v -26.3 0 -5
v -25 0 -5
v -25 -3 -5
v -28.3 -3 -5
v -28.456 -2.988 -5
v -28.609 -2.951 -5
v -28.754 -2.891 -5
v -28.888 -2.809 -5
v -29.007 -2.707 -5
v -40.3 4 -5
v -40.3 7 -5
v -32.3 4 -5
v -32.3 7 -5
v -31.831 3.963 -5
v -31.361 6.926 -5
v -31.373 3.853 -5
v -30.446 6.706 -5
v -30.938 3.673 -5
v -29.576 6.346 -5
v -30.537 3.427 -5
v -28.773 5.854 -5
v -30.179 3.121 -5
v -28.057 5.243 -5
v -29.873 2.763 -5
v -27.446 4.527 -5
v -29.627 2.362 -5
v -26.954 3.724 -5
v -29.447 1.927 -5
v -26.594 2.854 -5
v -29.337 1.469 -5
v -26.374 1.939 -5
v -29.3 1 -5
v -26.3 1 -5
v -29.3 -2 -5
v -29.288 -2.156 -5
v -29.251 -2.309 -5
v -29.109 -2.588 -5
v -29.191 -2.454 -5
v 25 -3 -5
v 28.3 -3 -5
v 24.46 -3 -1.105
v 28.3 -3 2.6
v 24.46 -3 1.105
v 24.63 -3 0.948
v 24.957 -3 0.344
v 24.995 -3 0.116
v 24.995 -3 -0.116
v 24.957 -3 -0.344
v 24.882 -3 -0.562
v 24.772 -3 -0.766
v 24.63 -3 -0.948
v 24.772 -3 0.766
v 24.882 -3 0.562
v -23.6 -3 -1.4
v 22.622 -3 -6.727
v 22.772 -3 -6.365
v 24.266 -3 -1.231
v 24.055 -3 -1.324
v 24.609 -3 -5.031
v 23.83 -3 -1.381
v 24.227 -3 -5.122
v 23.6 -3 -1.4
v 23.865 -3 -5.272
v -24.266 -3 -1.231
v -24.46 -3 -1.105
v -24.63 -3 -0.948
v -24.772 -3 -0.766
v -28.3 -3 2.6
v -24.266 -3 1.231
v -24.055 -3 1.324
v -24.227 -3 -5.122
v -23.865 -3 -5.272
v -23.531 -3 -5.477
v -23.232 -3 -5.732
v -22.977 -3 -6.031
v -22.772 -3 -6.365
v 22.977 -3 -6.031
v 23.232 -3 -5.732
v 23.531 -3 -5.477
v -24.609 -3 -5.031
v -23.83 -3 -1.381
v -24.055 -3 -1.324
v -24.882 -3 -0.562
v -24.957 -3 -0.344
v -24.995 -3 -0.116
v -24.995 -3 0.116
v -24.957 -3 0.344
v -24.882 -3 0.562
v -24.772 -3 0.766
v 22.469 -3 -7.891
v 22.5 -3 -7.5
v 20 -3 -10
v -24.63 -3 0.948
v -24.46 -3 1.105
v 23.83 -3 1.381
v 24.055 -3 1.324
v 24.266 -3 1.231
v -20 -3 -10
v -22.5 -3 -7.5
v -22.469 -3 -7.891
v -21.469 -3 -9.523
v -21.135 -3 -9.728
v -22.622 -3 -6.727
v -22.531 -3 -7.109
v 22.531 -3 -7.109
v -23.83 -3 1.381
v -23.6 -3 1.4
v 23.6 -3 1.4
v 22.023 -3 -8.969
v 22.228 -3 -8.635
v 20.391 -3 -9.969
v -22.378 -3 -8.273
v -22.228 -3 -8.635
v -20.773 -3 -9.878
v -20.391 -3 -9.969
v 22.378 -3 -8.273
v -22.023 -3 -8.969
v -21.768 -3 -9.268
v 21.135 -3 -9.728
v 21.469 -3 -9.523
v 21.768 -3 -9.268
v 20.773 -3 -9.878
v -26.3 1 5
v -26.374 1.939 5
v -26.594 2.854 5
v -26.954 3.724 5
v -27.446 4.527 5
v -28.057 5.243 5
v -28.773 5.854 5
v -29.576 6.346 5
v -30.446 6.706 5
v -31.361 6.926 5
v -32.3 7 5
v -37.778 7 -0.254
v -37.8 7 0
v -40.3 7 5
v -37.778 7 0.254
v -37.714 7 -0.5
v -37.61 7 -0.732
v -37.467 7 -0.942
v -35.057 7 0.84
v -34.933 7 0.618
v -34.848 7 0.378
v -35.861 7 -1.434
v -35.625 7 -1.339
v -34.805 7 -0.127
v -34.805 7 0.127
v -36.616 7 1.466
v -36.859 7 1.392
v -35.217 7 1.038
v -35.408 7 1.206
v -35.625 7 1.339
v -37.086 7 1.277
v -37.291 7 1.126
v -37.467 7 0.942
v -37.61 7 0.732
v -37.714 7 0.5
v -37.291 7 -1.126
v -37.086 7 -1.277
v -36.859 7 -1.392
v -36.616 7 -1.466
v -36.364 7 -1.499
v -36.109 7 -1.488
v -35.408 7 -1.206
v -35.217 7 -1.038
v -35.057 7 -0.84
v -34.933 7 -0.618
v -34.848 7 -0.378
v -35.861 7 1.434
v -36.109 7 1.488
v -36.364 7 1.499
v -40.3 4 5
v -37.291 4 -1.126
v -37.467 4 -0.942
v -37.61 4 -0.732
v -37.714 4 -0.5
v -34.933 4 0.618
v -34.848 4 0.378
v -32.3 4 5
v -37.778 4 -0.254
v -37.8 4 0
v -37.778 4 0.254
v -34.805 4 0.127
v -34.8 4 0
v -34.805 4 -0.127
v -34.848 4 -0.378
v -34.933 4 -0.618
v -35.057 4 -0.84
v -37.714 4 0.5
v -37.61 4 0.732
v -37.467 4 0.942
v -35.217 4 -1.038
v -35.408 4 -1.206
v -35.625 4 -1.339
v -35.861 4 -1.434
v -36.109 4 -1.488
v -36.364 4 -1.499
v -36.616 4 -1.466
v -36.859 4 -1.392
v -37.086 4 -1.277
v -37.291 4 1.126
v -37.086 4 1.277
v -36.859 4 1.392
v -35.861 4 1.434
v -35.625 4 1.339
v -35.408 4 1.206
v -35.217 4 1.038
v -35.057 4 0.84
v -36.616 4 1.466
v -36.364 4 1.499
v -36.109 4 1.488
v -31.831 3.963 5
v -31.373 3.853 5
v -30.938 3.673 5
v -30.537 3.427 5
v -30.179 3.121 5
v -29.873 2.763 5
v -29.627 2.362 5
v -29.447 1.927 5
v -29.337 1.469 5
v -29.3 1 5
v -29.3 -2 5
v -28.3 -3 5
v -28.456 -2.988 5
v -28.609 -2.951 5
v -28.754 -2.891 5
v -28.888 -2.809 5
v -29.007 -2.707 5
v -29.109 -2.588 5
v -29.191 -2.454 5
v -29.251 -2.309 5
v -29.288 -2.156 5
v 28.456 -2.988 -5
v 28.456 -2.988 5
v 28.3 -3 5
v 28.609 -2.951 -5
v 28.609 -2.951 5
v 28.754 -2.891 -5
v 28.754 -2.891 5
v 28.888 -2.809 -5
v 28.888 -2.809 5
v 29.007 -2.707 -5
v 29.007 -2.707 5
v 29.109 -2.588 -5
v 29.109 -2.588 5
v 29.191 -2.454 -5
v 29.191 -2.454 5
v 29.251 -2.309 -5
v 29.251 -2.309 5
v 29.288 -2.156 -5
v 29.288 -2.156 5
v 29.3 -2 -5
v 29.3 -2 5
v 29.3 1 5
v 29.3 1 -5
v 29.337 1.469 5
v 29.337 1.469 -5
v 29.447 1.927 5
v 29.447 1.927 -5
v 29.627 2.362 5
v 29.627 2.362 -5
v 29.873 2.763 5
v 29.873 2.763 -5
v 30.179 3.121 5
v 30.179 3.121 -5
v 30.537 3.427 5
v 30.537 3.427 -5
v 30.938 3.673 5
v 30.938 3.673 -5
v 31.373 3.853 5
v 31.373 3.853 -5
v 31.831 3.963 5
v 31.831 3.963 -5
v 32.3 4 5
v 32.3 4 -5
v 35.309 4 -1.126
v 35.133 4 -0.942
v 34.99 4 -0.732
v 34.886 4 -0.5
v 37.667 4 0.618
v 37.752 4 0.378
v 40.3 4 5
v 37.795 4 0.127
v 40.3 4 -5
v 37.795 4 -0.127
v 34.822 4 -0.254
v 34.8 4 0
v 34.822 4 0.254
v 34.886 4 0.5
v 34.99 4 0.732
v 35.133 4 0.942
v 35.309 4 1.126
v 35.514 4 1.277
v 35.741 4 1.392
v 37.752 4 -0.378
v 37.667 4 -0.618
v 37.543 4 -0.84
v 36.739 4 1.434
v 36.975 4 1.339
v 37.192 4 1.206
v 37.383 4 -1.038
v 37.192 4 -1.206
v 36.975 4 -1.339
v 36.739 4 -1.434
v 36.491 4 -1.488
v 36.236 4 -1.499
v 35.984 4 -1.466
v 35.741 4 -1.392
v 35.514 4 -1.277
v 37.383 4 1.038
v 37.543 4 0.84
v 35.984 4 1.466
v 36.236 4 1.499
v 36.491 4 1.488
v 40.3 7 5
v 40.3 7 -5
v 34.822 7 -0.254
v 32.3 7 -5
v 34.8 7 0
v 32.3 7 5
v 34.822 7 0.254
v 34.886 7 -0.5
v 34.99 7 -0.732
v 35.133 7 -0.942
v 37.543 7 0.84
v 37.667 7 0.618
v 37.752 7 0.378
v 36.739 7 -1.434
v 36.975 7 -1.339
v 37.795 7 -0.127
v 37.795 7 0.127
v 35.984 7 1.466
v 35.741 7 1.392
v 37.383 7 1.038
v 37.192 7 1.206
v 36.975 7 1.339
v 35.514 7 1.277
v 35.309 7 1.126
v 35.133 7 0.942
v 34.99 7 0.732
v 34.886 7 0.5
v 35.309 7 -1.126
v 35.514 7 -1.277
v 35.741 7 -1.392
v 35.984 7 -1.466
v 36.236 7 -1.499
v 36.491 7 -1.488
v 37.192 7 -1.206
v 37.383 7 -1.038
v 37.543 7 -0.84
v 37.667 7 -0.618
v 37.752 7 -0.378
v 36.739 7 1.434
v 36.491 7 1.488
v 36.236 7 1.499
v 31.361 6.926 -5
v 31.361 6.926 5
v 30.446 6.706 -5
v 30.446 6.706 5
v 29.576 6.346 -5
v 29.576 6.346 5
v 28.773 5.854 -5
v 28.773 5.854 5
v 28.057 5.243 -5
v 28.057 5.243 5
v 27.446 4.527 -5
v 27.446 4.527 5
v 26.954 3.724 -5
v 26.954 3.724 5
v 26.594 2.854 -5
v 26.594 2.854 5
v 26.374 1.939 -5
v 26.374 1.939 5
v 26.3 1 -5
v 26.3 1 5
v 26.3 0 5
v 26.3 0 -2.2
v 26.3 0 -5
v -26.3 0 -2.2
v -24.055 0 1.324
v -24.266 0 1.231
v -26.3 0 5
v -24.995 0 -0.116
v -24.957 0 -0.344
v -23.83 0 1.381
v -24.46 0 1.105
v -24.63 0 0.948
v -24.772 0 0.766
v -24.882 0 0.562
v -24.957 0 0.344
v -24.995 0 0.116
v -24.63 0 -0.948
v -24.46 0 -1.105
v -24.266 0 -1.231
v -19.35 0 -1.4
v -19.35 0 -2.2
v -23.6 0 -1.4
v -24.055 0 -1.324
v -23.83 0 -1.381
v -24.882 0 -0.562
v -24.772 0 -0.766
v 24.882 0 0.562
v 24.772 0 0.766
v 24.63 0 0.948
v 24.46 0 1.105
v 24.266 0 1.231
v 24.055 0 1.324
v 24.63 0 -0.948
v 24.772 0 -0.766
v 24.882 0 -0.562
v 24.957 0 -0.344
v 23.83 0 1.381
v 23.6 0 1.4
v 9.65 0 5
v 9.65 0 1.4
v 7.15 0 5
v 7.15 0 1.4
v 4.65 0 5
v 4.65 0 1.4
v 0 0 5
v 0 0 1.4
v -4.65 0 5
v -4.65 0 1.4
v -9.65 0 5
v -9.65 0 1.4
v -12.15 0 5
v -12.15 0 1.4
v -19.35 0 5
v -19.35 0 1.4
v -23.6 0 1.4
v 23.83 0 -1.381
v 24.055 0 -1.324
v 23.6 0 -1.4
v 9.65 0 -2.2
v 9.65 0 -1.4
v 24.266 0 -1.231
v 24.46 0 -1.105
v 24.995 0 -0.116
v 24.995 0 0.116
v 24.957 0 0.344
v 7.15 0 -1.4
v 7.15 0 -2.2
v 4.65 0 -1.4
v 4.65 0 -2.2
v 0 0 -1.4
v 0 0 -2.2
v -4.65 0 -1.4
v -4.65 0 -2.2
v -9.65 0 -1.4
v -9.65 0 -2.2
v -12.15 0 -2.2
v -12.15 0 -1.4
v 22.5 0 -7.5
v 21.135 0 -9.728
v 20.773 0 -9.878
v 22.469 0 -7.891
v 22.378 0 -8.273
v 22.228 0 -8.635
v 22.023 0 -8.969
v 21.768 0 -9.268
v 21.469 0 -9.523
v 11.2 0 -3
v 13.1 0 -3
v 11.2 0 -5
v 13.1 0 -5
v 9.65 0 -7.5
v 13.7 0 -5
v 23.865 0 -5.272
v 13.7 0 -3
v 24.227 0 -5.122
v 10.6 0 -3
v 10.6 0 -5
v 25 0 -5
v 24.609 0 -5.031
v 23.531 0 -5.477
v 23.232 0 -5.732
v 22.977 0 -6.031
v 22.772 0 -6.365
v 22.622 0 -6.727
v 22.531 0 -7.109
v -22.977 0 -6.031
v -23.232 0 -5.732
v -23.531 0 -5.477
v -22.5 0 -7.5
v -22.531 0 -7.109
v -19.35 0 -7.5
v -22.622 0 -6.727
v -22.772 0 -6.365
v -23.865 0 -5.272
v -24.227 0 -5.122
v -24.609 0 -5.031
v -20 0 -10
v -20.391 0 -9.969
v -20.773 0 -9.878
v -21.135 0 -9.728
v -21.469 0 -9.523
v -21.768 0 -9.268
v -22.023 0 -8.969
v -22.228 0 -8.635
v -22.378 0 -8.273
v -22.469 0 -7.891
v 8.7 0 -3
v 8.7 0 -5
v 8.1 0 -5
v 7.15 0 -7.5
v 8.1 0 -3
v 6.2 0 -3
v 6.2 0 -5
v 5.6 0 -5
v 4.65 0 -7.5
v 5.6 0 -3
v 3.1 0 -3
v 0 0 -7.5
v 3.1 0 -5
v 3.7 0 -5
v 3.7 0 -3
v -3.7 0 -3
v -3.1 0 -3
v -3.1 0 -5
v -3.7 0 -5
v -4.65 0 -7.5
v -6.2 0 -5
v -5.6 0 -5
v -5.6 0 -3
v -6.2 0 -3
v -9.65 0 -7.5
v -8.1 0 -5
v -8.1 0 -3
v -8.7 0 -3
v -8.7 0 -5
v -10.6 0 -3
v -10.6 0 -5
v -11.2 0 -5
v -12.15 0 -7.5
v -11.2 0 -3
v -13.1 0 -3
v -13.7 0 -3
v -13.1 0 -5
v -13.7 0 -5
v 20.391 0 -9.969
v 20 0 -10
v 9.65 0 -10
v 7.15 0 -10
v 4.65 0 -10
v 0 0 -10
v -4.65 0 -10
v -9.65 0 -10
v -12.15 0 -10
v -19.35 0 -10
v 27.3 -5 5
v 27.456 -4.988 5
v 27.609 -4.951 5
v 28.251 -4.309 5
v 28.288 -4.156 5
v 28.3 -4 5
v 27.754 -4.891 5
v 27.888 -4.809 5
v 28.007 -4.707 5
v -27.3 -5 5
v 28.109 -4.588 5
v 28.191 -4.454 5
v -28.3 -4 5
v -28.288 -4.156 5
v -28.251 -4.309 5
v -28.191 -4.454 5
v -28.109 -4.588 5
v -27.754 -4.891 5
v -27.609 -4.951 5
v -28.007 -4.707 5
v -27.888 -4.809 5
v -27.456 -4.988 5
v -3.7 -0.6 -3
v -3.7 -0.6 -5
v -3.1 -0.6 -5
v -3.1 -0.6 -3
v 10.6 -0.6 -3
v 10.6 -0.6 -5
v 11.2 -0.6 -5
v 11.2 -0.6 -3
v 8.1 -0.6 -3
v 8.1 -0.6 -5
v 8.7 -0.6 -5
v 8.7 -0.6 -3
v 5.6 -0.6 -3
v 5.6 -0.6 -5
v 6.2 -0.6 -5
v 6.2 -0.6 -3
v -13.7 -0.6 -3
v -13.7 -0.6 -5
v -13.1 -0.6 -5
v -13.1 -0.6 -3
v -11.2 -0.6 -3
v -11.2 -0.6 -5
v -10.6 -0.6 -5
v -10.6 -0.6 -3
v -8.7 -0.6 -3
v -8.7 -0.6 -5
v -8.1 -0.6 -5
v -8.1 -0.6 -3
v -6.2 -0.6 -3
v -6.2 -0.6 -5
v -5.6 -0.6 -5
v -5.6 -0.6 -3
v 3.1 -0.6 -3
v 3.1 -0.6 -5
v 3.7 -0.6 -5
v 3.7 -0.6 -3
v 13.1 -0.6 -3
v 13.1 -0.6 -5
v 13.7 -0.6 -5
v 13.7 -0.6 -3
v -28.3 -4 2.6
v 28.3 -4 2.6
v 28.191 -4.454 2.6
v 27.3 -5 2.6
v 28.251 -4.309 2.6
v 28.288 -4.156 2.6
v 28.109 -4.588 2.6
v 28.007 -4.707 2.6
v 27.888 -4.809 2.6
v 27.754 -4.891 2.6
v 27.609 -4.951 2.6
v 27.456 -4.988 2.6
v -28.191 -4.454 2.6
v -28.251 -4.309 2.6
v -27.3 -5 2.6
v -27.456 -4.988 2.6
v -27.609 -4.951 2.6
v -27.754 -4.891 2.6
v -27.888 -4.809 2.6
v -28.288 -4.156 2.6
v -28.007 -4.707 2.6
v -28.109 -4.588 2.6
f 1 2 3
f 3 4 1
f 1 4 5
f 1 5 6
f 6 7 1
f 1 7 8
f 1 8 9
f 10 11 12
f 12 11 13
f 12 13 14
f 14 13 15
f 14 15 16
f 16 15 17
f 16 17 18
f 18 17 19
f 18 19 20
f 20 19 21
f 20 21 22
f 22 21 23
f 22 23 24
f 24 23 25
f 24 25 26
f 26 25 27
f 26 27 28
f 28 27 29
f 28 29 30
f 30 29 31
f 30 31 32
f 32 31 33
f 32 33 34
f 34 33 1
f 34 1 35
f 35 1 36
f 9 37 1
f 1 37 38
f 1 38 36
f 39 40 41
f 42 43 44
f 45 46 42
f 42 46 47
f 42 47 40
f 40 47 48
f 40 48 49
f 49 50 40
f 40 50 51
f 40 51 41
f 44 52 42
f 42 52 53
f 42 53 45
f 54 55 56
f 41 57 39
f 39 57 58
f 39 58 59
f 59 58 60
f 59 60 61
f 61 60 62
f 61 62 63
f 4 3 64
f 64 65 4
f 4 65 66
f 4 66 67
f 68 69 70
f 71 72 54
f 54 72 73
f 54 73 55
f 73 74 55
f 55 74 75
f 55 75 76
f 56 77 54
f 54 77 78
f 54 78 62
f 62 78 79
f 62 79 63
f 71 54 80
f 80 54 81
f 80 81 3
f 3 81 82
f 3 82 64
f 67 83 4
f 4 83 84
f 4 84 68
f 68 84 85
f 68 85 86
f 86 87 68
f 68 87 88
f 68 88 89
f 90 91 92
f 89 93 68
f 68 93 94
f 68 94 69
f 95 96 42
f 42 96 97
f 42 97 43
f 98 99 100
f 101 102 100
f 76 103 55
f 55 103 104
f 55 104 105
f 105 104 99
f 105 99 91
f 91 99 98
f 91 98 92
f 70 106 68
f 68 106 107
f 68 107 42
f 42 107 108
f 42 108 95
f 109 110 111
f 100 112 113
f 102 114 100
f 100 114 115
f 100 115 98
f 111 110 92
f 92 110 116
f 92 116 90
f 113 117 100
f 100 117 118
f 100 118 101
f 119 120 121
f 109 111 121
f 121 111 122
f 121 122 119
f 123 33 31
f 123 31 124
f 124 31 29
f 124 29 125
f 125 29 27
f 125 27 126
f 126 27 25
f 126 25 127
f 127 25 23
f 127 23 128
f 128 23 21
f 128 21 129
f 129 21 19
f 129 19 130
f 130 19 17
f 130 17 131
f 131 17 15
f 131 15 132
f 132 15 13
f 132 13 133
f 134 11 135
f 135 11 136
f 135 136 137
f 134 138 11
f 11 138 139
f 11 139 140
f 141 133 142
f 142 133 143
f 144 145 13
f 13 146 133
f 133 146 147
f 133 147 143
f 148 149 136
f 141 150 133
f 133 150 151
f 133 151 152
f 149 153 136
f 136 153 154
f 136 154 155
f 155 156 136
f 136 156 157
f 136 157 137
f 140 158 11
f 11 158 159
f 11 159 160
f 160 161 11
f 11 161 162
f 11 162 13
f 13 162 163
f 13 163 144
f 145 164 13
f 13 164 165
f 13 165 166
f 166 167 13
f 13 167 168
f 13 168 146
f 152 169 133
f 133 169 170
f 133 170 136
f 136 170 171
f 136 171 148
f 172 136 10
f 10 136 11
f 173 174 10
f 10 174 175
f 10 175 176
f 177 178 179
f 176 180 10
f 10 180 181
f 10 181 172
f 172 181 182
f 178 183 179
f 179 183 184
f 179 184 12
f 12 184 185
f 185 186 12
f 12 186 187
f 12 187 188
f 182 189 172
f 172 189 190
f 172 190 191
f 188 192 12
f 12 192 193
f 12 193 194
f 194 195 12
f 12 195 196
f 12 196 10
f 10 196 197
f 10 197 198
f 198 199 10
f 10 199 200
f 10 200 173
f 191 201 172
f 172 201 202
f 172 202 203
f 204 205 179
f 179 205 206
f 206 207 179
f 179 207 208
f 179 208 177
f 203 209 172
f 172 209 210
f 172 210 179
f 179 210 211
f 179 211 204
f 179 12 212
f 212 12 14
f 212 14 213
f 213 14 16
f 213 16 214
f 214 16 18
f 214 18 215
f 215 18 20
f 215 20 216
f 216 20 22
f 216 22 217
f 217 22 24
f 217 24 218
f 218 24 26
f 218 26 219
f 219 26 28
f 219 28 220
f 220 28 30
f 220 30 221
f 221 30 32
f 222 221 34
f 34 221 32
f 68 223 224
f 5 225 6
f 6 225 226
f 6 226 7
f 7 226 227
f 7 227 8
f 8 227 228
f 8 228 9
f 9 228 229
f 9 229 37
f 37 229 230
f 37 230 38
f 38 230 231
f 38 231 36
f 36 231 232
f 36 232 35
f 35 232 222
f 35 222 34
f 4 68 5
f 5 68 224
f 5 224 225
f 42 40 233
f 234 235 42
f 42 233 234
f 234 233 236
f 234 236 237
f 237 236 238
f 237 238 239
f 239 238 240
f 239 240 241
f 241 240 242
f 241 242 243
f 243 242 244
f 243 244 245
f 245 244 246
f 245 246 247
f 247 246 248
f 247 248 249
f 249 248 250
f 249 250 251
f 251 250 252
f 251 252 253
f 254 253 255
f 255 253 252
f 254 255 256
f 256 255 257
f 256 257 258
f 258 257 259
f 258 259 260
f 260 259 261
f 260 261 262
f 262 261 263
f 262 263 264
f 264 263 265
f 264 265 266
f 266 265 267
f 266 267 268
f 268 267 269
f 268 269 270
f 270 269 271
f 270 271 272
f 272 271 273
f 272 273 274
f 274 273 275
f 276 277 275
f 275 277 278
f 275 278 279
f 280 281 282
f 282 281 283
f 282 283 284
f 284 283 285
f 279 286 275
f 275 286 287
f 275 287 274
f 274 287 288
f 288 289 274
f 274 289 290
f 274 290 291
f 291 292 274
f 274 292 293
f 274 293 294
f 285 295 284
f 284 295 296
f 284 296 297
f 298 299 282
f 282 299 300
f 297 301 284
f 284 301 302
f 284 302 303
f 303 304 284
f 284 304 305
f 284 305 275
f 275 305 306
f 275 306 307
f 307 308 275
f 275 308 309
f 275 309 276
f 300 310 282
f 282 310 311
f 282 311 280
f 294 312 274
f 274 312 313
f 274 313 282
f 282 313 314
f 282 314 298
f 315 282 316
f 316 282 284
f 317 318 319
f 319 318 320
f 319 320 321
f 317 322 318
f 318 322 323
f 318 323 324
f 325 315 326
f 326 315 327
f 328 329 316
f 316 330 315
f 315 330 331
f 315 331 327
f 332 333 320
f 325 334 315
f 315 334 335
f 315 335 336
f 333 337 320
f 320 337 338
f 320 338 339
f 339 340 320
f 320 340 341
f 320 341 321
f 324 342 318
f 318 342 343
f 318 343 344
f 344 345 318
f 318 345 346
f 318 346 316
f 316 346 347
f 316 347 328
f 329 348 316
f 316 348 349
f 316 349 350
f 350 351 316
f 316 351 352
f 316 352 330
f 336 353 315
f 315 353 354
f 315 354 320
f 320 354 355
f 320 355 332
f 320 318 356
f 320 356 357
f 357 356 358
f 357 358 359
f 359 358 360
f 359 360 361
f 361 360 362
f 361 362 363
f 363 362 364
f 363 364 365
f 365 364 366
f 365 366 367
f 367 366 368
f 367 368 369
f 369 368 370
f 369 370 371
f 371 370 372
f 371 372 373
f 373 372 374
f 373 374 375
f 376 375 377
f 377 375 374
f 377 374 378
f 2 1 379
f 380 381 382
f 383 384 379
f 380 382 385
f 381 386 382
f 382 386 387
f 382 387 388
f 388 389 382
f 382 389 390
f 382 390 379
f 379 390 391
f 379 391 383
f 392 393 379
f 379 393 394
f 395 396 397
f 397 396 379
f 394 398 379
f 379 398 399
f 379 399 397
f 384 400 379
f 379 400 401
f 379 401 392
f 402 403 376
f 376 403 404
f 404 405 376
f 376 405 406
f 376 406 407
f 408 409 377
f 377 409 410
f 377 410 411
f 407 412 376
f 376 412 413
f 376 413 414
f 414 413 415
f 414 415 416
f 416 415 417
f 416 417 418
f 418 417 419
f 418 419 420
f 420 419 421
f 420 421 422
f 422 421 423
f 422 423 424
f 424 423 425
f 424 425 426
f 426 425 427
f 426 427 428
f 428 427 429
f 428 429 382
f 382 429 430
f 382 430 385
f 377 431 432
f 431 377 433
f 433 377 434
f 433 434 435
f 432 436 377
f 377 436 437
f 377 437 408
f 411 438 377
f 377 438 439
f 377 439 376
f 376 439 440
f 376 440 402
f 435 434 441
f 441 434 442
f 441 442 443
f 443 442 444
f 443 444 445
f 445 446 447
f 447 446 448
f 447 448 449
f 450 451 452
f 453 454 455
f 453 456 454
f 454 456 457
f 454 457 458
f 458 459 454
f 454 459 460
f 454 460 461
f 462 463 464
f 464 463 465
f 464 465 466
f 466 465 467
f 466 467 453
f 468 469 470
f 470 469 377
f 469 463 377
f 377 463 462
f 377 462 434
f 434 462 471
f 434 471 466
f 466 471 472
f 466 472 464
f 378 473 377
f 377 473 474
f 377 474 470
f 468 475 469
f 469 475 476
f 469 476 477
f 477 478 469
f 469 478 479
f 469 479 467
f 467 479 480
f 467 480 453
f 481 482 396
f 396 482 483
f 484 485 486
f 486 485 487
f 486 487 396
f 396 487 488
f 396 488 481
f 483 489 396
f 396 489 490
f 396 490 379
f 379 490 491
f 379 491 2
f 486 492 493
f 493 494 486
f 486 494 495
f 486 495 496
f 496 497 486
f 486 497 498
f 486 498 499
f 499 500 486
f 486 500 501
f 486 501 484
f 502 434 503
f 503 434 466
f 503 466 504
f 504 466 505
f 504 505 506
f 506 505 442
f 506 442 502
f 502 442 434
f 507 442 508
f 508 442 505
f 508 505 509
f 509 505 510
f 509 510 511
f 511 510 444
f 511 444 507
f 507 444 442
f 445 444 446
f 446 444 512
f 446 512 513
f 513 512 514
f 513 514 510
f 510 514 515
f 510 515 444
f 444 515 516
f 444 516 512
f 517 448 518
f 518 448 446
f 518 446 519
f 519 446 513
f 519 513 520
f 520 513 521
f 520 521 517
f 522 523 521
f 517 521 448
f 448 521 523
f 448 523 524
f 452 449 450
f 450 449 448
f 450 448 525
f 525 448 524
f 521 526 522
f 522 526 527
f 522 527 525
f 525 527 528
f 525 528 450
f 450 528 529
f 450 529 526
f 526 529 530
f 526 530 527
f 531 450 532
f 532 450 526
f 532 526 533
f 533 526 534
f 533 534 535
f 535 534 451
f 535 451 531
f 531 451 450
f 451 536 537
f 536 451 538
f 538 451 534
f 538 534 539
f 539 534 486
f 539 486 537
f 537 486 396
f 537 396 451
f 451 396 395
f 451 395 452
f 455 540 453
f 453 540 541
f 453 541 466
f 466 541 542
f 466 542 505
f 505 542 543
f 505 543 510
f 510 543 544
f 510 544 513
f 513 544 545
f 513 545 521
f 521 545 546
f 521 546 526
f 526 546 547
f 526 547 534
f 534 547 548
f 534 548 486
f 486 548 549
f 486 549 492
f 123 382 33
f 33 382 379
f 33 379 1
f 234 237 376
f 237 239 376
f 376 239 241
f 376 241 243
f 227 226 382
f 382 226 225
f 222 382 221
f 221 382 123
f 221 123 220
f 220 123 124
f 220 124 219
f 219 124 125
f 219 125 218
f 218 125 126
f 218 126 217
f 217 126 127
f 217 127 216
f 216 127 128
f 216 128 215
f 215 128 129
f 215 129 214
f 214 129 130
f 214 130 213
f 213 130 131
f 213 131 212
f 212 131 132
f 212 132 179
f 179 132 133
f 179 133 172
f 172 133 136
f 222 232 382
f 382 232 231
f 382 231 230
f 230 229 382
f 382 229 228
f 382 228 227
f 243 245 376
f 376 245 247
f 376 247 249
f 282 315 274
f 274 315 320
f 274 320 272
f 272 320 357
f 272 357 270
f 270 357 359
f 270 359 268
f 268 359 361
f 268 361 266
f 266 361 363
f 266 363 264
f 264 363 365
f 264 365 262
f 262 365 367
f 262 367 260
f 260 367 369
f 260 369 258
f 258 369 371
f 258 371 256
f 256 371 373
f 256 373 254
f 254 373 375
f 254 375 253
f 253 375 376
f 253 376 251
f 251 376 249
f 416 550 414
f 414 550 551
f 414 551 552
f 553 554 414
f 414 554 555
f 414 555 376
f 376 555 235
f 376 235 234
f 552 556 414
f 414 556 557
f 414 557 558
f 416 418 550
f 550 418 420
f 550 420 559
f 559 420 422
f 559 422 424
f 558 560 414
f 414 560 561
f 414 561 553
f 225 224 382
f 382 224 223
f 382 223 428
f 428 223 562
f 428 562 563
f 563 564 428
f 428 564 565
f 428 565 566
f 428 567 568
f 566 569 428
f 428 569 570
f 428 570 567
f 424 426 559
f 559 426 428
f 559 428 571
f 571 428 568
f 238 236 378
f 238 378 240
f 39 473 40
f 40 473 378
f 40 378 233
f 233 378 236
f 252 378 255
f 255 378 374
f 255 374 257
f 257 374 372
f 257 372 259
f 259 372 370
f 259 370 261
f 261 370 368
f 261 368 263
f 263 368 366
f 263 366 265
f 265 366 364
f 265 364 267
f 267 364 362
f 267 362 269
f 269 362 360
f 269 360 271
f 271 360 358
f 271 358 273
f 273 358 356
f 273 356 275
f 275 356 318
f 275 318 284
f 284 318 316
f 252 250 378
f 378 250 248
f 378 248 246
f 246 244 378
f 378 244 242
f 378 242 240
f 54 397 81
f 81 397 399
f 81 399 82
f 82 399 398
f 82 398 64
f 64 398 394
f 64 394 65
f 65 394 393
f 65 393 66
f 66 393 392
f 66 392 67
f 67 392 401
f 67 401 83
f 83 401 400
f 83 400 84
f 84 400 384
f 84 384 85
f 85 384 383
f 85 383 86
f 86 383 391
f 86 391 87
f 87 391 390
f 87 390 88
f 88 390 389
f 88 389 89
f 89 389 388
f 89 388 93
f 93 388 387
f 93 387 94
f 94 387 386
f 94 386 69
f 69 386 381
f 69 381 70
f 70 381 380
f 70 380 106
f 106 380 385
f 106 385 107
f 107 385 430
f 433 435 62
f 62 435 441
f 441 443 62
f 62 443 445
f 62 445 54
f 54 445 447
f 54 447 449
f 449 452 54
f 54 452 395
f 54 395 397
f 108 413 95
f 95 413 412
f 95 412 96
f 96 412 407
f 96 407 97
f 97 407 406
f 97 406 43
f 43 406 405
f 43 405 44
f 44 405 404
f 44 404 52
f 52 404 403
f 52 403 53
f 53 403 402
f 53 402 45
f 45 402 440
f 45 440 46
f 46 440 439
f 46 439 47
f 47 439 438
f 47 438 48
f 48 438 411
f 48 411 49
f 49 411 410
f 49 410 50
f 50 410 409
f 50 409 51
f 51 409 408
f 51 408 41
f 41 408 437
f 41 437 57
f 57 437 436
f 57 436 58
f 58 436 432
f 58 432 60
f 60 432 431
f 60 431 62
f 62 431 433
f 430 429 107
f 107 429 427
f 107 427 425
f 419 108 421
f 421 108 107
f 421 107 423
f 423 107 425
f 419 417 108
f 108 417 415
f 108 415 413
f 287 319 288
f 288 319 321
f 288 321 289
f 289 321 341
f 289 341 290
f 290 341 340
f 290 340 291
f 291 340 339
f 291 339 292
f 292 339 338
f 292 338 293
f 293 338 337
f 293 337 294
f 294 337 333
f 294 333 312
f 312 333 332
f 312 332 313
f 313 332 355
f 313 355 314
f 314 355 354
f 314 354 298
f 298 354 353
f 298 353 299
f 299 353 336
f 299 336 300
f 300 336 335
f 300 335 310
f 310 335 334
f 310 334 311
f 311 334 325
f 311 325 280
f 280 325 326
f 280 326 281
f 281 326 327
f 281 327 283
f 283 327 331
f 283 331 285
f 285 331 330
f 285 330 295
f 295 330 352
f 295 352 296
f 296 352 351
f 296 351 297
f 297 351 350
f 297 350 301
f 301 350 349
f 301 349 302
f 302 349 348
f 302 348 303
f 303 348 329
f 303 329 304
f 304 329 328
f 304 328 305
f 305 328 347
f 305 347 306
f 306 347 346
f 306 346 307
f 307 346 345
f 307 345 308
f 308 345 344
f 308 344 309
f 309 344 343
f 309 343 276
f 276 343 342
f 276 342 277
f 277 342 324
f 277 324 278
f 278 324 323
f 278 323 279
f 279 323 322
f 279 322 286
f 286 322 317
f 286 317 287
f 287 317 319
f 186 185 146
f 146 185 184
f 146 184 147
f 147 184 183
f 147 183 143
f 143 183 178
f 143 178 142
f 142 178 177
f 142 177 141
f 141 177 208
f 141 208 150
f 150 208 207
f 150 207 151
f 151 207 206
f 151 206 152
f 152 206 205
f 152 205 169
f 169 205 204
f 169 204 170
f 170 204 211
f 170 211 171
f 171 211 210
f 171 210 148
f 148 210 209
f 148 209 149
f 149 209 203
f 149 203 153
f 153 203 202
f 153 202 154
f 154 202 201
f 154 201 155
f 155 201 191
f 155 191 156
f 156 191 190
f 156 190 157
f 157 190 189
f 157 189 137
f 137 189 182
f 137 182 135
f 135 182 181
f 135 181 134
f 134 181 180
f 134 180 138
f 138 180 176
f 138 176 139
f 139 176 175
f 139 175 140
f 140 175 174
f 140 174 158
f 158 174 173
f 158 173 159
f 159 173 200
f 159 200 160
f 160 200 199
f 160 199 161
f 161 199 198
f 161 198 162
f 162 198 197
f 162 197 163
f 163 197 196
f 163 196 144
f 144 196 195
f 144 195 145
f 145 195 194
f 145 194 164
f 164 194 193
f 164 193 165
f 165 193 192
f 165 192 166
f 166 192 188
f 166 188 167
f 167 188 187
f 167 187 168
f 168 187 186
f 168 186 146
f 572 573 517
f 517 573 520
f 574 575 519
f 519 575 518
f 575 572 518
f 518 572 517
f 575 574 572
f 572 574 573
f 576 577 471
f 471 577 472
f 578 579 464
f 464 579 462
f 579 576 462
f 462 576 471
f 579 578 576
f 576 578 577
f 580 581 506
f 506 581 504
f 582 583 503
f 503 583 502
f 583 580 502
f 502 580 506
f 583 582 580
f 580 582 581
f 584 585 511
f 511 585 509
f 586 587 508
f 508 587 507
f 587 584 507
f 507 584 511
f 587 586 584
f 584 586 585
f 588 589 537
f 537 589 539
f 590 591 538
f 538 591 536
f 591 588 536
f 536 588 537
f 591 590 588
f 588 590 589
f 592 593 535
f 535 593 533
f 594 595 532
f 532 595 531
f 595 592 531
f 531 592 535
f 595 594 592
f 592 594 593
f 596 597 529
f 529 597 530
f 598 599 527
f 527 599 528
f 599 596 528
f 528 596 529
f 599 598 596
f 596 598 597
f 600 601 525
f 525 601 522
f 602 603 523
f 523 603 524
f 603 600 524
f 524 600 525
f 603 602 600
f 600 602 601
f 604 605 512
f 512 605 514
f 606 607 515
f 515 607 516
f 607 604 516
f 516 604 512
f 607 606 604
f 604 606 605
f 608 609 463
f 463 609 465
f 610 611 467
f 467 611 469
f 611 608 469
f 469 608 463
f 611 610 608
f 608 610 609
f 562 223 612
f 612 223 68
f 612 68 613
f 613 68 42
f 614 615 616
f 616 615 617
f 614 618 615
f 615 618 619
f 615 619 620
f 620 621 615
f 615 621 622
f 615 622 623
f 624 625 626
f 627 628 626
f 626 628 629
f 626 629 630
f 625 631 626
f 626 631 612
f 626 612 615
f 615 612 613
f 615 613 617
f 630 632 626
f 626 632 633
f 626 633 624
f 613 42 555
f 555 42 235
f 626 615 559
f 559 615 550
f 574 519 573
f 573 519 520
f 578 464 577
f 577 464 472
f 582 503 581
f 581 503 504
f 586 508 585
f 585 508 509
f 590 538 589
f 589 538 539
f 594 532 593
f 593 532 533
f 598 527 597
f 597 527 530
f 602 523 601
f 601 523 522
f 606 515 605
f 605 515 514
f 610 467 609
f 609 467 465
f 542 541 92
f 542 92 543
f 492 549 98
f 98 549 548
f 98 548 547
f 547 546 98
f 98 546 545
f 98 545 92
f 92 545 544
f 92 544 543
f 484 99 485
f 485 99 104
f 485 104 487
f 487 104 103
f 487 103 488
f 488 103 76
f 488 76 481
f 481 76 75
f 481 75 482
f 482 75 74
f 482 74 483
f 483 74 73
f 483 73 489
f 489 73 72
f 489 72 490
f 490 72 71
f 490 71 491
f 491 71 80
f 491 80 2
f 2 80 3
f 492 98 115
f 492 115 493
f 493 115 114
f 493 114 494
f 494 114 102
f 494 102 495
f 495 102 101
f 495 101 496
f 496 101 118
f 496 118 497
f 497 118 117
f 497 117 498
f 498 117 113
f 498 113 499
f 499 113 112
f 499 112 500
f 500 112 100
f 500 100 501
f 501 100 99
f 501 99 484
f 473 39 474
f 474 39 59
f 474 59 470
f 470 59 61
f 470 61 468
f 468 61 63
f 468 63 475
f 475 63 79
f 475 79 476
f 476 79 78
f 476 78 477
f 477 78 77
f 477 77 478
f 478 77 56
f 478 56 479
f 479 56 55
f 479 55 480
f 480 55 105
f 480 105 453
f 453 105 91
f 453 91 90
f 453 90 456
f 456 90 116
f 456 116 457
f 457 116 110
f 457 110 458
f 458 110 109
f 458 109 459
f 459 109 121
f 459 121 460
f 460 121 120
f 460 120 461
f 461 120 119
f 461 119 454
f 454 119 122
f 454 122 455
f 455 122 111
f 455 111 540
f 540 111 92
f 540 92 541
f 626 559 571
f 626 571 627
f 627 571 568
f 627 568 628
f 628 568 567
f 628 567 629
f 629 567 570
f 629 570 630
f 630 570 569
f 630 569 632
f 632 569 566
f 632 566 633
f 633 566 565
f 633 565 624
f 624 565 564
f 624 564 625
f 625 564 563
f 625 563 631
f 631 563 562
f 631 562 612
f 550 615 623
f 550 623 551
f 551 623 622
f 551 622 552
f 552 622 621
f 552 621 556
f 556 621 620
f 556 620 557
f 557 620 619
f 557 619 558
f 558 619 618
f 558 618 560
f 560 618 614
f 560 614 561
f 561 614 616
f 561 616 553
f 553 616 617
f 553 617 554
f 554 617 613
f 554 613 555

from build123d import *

# Parameters (mm, degrees)
BOSS_EXTRUDE1_DEPTH = 5
CUT_EXTRUDE1_DEPTH  = 42.207887594
CUT_EXTRUDE2_REACH  = 43.822
SKETCH5_R           = 1.5
SKETCH6_W           = 0.6
SKETCH6_H           = 2
CUT_EXTRUDE3_DEPTH  = 0.6
SKETCH8_W           = 56.6
SKETCH8_H           = 2.4
BOSS_EXTRUDE2_DEPTH = 2
SKETCH9_W           = 45
SKETCH9_H           = 5
BOSS_EXTRUDE3_DEPTH = 3
FILLET1_START       = -3
FILLET1_DEPTH       = 10
FILLET1_2_DEPTH     = 3
FILLET2_R           = 1


with BuildPart() as part:
    # Sketch1 → Boss-Extrude1 (new, symmetric)
    with BuildSketch(Plane.XY):
        with BuildLine():
            Line((-26.3, 1), (-26.3, 0))
            Line((-26.3, 0), (26.3, 0))
            Line((26.3, 0), (26.3, 1))
            ThreePointArc((26.3, 1), (28.057359313, 5.242640687), (32.3, 7))
            Line((32.3, 7), (40.3, 7))
            Line((40.3, 7), (40.3, 4))
            Line((40.3, 4), (32.3, 4))
            ThreePointArc((32.3, 4), (30.178679656, 3.121320344), (29.3, 1))
            Line((29.3, 1), (29.3, -2))
            ThreePointArc((29.3, -2), (29.007106781, -2.707106781), (28.3, -3))
            Line((28.3, -3), (-28.3, -3))
            ThreePointArc((-28.3, -3), (-29.007106781, -2.707106781), (-29.3, -2))
            Line((-29.3, -2), (-29.3, 1))
            ThreePointArc((-29.3, 1), (-30.178679656, 3.121320344), (-32.3, 4))
            Line((-32.3, 4), (-40.3, 4))
            Line((-40.3, 4), (-40.3, 7))
            Line((-40.3, 7), (-32.3, 7))
            ThreePointArc((-32.3, 7), (-28.057359313, 5.242640687), (-26.3, 1))
        make_face()
    extrude(amount=BOSS_EXTRUDE1_DEPTH, both=True)

    # Sketch3 → Cut-Extrude1 (cut, through all)
    with BuildSketch(Plane(origin=(0, 0, 0), x_dir=(1, 0, 0), z_dir=(0, 1, 0))):
        with BuildLine():
            Line((-23.6, 1.4), (23.6, 1.4))
            ThreePointArc((23.6, 1.4), (25, 0), (23.6, -1.4))
            Line((23.6, -1.4), (-23.6, -1.4))
            ThreePointArc((-23.6, -1.4), (-25, 0), (-23.6, 1.4))
        make_face()
    extrude(amount=-CUT_EXTRUDE1_DEPTH, mode=Mode.SUBTRACT)

    # Sketch5 → Cut-Extrude2 (cut, up to next)
    with BuildSketch(Plane(origin=(0, 7, 0), x_dir=(1, 0, 0), z_dir=(0, 1, 0)), mode=Mode.PRIVATE) as cut_extrude2_sk1:
        with Locations(Location((-36.3, 0, 0), (0, 0, 180))):
            Circle(SKETCH5_R)
    cut_extrude2_tool1 = extrude(cut_extrude2_sk1.sketch, amount=-CUT_EXTRUDE2_REACH, mode=Mode.PRIVATE) & part.part
    # Sketch5 → Cut-Extrude2 (cut, up to next)
    with BuildSketch(Plane(origin=(0, 7, 0), x_dir=(1, 0, 0), z_dir=(0, 1, 0)), mode=Mode.PRIVATE) as cut_extrude2_sk2:
        with Locations(Location((36.3, 0, 0), (0, 0, 180))):
            Circle(SKETCH5_R)
    cut_extrude2_tool2 = extrude(cut_extrude2_sk2.sketch, amount=-CUT_EXTRUDE2_REACH, mode=Mode.PRIVATE) & part.part
    add(cut_extrude2_tool1.solids().sort_by_distance((-36.3, 7, 0))[0], mode=Mode.SUBTRACT)
    add(cut_extrude2_tool2.solids().sort_by_distance((36.3, 7, 0))[0], mode=Mode.SUBTRACT)

    # Sketch6 → Cut-Extrude3 (cut)
    with BuildSketch(Plane(origin=(0, 0, 0), x_dir=(1, 0, 0), z_dir=(0, 1, 0))):
        with Locations((-5.9, 4)):
            Rectangle(SKETCH6_W, SKETCH6_H)
        with Locations((-3.4, 4)):
            Rectangle(SKETCH6_W, SKETCH6_H)
        with Locations((3.4, 4)):
            Rectangle(SKETCH6_W, SKETCH6_H)
        with Locations((-8.4, 4)):
            Rectangle(SKETCH6_W, SKETCH6_H)
        with Locations((-10.9, 4)):
            Rectangle(SKETCH6_W, SKETCH6_H)
        with Locations((-13.4, 4)):
            Rectangle(SKETCH6_W, SKETCH6_H)
        with Locations((5.9, 4)):
            Rectangle(SKETCH6_W, SKETCH6_H)
        with Locations((8.4, 4)):
            Rectangle(SKETCH6_W, SKETCH6_H)
        with Locations((10.9, 4)):
            Rectangle(SKETCH6_W, SKETCH6_H)
        with Locations((13.4, 4)):
            Rectangle(SKETCH6_W, SKETCH6_H)
    extrude(amount=-CUT_EXTRUDE3_DEPTH, mode=Mode.SUBTRACT)

    # Sketch8 → Boss-Extrude2 (add)
    with BuildSketch(Plane.XZ.offset(3)):
        with Locations((0, 3.8)):
            Rectangle(SKETCH8_W, SKETCH8_H)
    extrude(amount=BOSS_EXTRUDE2_DEPTH)

    # Sketch9 → Boss-Extrude3 (add)
    with BuildSketch(Plane.XZ.offset(3)):
        with Locations((0, -7.5)):
            Rectangle(SKETCH9_W, SKETCH9_H)
    extrude(amount=-BOSS_EXTRUDE3_DEPTH)

    # Fillet1: read off the stored shape, not the designer's step
    # Fillet1 outline → Fillet1 (cut)
    with BuildSketch(Plane(origin=(0, 0, 0), x_dir=(1, 0, 0), z_dir=(0, 1, 0)).offset(FILLET1_START)):
        with BuildLine():
            Line((-22.5, 10), (-22.5, 7.5))
            ThreePointArc((-22.5, 7.5), (-21.767766953, 9.267766953), (-20, 10))
            Line((-20, 10), (-22.5, 10))
        make_face()
        with BuildLine():
            Line((22.5, 10), (20, 10))
            ThreePointArc((20, 10), (21.767766953, 9.267766953), (22.5, 7.5))
            Line((22.5, 7.5), (22.5, 10))
        make_face()
    extrude(amount=FILLET1_DEPTH, mode=Mode.SUBTRACT)

    # Fillet1 2 outline → Fillet1 2 (add)
    with BuildSketch(Plane(origin=(0, 0, 0), x_dir=(1, 0, 0), z_dir=(0, 1, 0)).offset(FILLET1_START)):
        with BuildLine():
            Line((-22.5, 5), (-22.5, 7.5))
            ThreePointArc((-22.5, 7.5), (-23.232233047, 5.732233047), (-25, 5))
            Line((-25, 5), (-22.5, 5))
        make_face()
        with BuildLine():
            ThreePointArc((25, 5), (23.232233047, 5.732233047), (22.5, 7.5))
            Line((22.5, 7.5), (22.5, 5))
            Line((22.5, 5), (25, 5))
        make_face()
    extrude(amount=FILLET1_2_DEPTH)

    # Fillet2
    fillet2_edges = [part.edges().sort_by_distance(p)[0] for p in [
        (-28.3, -5, 3.8),
        (28.3, -5, 3.8),
    ]]
    fillet(fillet2_edges, radius=FILLET2_R)


solid = part.part
